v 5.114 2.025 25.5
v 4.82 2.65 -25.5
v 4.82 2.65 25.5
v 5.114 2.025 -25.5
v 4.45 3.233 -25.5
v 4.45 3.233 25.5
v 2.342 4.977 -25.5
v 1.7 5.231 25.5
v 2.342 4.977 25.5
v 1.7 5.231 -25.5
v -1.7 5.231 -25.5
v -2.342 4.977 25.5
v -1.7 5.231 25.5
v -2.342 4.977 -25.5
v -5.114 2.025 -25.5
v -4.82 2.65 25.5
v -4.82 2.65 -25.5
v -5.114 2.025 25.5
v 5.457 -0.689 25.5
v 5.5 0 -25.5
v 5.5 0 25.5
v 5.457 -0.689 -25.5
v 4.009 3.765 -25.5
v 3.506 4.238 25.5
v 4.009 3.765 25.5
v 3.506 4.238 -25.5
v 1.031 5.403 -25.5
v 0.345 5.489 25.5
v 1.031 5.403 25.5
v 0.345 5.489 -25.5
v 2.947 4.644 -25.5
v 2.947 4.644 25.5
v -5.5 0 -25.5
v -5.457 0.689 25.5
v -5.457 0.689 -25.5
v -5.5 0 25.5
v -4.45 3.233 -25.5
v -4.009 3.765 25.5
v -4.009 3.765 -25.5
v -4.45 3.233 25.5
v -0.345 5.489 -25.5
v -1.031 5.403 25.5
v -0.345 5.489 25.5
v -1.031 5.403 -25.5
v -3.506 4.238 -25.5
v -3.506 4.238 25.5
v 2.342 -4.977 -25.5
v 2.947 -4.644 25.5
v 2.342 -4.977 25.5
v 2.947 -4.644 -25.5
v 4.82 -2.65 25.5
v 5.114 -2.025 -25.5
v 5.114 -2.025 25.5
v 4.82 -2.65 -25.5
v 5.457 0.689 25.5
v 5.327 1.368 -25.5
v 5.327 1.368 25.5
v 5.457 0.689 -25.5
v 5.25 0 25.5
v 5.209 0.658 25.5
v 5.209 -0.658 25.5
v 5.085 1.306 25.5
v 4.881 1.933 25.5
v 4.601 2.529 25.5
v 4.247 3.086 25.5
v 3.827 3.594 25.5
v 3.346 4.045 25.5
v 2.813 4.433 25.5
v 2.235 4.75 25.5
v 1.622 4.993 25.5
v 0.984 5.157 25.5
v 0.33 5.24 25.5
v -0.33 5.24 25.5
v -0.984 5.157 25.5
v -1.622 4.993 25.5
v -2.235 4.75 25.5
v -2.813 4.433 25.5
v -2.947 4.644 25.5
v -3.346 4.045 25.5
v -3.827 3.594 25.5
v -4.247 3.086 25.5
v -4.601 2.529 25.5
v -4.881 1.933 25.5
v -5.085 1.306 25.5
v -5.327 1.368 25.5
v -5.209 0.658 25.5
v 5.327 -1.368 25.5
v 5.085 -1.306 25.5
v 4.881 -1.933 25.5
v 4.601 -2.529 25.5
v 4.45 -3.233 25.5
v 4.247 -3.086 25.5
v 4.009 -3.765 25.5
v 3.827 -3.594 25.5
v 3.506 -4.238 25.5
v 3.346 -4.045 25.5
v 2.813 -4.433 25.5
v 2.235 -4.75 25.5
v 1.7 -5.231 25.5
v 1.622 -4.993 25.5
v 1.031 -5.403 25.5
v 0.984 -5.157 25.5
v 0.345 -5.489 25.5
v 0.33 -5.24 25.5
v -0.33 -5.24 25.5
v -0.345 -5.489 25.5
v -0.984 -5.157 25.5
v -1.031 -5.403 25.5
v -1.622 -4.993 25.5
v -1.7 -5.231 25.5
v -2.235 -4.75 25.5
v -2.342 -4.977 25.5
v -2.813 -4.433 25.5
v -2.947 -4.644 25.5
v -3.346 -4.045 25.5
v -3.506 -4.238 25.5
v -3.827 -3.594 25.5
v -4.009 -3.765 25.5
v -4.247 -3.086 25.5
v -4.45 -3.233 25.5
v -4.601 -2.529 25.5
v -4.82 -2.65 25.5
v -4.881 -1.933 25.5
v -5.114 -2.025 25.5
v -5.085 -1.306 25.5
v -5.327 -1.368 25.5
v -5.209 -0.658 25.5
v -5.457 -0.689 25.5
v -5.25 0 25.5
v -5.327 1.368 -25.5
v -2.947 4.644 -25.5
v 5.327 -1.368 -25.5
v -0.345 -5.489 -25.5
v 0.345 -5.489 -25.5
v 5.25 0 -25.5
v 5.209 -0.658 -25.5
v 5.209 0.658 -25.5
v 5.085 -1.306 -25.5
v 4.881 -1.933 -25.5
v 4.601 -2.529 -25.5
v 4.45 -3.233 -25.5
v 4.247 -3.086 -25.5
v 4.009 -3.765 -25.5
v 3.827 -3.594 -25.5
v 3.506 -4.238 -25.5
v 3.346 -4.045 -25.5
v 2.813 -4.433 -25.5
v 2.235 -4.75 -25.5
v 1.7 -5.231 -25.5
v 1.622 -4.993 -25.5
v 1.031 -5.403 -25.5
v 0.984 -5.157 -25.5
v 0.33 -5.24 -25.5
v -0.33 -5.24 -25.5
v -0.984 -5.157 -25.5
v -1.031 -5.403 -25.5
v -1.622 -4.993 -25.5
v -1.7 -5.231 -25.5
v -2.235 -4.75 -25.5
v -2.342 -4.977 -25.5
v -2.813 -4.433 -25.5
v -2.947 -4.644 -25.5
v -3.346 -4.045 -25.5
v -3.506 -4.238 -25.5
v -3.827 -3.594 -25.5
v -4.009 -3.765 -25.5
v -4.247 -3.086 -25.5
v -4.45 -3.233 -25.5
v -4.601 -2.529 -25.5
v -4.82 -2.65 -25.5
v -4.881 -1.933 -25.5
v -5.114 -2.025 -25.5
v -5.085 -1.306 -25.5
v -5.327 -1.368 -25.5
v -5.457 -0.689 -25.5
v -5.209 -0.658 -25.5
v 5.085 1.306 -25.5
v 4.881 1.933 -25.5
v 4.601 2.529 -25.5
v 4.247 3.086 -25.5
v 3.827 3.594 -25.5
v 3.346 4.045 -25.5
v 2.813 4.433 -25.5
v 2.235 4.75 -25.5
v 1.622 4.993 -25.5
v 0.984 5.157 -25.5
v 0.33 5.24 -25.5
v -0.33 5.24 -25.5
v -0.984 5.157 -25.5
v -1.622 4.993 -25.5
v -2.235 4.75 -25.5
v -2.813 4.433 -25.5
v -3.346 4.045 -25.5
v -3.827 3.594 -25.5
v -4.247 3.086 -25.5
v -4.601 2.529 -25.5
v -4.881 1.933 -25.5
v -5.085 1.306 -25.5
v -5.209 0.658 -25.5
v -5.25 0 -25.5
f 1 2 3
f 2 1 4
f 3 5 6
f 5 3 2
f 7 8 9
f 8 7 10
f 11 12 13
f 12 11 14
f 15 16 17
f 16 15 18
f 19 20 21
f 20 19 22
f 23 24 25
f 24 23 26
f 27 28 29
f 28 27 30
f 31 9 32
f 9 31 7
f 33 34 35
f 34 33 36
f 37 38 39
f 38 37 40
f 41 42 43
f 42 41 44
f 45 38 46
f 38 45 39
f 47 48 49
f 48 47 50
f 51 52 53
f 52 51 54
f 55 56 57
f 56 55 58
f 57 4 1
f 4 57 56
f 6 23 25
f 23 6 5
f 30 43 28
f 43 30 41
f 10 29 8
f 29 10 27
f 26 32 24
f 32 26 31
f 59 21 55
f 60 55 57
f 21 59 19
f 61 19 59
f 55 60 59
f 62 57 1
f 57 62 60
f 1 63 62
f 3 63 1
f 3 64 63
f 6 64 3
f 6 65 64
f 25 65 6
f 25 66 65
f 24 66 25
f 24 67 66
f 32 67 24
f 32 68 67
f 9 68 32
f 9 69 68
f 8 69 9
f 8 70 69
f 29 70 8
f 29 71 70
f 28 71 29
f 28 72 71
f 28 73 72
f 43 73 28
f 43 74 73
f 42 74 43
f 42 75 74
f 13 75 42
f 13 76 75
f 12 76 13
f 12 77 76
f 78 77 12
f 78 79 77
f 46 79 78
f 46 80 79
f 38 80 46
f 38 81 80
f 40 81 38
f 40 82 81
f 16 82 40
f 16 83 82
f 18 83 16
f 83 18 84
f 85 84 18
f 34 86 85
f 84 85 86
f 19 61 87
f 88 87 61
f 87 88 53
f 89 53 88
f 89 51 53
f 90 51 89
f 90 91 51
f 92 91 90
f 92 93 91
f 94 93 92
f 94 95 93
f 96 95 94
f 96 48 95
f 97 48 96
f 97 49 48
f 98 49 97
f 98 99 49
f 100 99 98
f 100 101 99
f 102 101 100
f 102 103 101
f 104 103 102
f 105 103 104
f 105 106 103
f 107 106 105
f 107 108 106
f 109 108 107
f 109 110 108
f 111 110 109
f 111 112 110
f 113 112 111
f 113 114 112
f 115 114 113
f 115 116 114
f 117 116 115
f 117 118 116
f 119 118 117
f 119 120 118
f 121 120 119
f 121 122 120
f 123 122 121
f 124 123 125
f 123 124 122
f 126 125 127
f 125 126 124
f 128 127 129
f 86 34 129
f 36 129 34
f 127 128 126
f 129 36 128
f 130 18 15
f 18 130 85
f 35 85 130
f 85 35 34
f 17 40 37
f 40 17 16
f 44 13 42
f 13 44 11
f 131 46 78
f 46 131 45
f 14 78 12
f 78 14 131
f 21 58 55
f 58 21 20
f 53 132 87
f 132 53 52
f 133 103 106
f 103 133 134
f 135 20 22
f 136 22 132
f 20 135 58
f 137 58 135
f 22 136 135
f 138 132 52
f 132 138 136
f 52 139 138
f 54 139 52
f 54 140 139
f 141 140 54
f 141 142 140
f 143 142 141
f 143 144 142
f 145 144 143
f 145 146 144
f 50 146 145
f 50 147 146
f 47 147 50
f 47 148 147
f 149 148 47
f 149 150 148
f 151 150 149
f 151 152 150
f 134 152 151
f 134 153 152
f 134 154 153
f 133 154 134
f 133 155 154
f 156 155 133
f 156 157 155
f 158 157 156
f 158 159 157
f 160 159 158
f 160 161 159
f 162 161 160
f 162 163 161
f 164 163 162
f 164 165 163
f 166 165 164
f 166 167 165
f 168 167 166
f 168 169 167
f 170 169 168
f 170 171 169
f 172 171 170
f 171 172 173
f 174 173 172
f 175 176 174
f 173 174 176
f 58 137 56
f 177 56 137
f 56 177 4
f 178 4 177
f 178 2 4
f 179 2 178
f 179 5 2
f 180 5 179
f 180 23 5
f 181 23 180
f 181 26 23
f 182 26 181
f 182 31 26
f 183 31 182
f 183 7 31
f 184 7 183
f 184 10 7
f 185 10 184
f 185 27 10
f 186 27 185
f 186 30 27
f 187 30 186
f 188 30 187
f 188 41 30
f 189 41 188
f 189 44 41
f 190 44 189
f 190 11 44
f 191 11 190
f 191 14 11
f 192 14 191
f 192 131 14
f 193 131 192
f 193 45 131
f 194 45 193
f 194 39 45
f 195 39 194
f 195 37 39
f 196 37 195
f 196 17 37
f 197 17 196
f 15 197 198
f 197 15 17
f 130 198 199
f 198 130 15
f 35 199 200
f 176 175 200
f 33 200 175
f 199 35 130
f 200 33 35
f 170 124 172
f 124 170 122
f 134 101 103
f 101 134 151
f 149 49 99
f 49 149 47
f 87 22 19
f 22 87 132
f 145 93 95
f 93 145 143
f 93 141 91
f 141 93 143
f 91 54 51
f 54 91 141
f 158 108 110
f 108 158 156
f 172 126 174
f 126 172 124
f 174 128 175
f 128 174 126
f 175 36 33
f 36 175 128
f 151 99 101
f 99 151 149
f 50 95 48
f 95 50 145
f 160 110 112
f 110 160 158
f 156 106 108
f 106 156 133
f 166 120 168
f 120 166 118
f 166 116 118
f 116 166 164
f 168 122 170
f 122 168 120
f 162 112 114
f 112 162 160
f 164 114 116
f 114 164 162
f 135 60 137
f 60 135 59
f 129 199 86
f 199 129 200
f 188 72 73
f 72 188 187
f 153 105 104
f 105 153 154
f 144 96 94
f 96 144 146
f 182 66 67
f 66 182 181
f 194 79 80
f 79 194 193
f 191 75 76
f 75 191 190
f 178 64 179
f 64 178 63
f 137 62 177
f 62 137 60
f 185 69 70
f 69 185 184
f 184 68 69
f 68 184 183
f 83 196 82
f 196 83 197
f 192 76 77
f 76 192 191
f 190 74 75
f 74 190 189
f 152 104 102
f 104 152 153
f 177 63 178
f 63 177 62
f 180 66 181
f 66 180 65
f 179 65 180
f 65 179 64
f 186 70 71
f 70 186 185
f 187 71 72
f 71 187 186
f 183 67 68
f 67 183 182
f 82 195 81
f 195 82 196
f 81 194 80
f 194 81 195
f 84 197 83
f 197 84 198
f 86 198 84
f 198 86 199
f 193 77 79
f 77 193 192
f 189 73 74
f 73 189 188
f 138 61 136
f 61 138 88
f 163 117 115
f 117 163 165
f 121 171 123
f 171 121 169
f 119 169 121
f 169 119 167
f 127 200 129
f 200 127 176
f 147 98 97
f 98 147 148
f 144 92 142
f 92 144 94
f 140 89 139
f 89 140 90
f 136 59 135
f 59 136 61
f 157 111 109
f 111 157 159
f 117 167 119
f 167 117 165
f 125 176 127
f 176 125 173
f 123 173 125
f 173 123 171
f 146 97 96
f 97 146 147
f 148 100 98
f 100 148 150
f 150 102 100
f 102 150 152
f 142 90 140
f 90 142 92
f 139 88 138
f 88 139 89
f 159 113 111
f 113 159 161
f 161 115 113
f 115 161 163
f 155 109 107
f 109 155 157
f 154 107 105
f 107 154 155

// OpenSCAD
$fn = 50;


difference() {
	union() {
		translate(v = [0, 0, -25.5000000000]) {
			cylinder(h = 51, r = 5.5000000000);
		}
	}
	union() {
		translate(v = [0, 0, -100.0000000000]) {
			cylinder(h = 200, r = 5.2500000000);
		}
	}
}
